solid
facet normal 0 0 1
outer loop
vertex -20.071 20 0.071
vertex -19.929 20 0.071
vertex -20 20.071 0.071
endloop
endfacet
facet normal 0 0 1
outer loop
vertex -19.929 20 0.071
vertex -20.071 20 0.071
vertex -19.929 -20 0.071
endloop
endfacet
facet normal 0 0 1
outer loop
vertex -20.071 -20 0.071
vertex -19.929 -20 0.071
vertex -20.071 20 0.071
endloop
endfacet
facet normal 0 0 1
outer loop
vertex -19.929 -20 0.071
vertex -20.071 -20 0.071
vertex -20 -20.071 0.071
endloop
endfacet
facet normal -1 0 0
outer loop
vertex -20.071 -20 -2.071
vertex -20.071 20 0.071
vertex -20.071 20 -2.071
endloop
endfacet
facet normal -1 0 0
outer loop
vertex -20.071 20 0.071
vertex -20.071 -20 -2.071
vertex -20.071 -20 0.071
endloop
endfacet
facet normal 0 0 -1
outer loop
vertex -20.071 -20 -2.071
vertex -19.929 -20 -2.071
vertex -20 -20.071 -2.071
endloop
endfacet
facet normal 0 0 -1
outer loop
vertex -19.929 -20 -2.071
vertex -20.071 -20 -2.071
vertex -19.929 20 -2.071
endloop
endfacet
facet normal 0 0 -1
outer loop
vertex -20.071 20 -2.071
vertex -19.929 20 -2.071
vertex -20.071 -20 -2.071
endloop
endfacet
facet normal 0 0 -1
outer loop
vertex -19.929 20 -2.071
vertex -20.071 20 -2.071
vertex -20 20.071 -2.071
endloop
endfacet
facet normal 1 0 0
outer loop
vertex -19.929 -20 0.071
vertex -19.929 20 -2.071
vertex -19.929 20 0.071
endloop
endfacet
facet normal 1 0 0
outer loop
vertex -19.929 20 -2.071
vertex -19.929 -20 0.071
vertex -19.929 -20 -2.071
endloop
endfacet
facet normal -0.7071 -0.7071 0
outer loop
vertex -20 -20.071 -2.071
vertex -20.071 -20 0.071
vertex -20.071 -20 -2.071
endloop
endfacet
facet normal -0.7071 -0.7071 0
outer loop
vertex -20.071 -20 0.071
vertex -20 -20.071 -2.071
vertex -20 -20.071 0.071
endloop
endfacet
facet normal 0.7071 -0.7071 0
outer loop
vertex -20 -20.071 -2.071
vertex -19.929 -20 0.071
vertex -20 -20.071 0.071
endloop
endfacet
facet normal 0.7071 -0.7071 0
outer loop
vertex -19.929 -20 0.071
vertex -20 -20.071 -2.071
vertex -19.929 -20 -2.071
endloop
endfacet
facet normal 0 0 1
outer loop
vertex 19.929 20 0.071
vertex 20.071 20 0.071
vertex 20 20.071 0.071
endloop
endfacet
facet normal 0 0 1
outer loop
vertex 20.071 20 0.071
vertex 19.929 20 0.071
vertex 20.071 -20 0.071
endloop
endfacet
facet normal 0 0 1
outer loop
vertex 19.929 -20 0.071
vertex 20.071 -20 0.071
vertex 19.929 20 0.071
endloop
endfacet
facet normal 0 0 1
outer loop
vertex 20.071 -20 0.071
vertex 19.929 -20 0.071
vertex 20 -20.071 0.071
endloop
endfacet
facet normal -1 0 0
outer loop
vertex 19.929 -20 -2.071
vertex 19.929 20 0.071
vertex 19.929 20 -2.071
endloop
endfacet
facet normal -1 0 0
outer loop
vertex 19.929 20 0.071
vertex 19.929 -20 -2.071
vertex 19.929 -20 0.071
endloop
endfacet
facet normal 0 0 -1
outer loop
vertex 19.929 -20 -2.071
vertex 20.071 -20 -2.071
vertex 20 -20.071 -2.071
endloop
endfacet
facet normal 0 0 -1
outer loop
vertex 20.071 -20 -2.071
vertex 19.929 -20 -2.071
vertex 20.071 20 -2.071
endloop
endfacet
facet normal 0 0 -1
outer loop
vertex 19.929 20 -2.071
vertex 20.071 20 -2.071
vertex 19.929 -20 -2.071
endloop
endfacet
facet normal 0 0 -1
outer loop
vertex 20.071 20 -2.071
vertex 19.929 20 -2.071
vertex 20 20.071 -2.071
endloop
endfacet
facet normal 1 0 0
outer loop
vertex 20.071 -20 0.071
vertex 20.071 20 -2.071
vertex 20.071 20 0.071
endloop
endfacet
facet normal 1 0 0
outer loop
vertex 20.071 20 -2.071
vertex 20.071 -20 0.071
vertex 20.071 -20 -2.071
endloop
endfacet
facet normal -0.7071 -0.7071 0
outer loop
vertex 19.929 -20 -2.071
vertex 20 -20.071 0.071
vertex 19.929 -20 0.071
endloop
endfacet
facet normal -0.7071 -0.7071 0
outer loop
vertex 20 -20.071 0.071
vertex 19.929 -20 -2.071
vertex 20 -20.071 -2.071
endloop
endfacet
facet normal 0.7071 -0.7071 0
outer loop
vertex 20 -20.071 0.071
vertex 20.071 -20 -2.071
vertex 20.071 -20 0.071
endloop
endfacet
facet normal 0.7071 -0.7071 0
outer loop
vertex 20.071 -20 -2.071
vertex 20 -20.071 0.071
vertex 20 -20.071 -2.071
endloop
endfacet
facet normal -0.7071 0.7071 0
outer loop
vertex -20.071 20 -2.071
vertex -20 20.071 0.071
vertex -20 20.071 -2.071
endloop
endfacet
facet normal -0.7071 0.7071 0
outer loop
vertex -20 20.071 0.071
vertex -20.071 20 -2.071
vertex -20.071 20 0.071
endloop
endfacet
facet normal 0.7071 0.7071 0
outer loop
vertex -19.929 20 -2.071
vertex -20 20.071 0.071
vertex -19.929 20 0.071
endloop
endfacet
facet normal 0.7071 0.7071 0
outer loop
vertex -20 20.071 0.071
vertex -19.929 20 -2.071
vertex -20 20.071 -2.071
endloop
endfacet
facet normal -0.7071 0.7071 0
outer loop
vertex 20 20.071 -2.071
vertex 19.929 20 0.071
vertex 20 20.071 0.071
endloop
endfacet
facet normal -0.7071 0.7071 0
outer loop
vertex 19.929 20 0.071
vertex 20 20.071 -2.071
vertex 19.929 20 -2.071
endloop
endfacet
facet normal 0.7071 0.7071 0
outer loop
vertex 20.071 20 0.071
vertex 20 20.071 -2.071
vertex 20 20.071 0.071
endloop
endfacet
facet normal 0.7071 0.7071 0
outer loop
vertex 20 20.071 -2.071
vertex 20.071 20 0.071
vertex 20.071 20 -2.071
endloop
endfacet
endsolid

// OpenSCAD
// Mesh deformation - wave pattern on a grid
size = 40;
resolution = 30;
wave_amplitude = 3;
wave_frequency = 2;

// Generate deformed mesh points
points = [
    for (x = [0:resolution])
        for (y = [0:resolution])
            let (xp = (x / resolution - 0.5) * size)
            let (yp = (y / resolution - 0.5) * size)
            let (zp = wave_amplitude * sin(wave_frequency * 360 * x / resolution) * 
                      cos(wave_frequency * 360 * y / resolution))
            [xp, yp, zp]
];

// Generate quad faces
faces = [
    for (x = [0:resolution-1])
        for (y = [0:resolution-1])
            let (base = x * (resolution + 1) + y)
            [base, base + 1, base + resolution + 2, base + resolution + 1]
];

// Create mesh with thickness by creating top and bottom surfaces
module wave_surface() {
    // Top surface
    polyhedron(points = points, faces = faces);
    
    // Bottom surface (offset down)
    bottom_points = [
        for (p = points) [p.x, p.y, p.z - 2]
    ];
    
    // Bottom faces (reversed winding)
    bottom_faces = [
        for (face = faces) [face[3], face[2], face[1], face[0]]
    ];
    
    polyhedron(points = bottom_points, faces = bottom_faces);
    
    // Side walls to close the mesh
    side_resolution = resolution;
    for (i = [0:side_resolution-1]) {
        // Front edge
        hull() {
            translate(points[i])
                sphere(0.1, $fn = 4);
            translate(points[i+1])
                sphere(0.1, $fn = 4);
            translate(bottom_points[i])
                sphere(0.1, $fn = 4);
            translate(bottom_points[i+1])
                sphere(0.1, $fn = 4);
        }
        
        // Back edge
        j = resolution * (resolution + 1) + i;
        hull() {
            translate(points[j])
                sphere(0.1, $fn = 4);
            translate(points[j+1])
                sphere(0.1, $fn = 4);
            translate(bottom_points[j])
                sphere(0.1, $fn = 4);
            translate(bottom_points[j+1])
                sphere(0.1, $fn = 4);
        }
    }
}

wave_surface();
